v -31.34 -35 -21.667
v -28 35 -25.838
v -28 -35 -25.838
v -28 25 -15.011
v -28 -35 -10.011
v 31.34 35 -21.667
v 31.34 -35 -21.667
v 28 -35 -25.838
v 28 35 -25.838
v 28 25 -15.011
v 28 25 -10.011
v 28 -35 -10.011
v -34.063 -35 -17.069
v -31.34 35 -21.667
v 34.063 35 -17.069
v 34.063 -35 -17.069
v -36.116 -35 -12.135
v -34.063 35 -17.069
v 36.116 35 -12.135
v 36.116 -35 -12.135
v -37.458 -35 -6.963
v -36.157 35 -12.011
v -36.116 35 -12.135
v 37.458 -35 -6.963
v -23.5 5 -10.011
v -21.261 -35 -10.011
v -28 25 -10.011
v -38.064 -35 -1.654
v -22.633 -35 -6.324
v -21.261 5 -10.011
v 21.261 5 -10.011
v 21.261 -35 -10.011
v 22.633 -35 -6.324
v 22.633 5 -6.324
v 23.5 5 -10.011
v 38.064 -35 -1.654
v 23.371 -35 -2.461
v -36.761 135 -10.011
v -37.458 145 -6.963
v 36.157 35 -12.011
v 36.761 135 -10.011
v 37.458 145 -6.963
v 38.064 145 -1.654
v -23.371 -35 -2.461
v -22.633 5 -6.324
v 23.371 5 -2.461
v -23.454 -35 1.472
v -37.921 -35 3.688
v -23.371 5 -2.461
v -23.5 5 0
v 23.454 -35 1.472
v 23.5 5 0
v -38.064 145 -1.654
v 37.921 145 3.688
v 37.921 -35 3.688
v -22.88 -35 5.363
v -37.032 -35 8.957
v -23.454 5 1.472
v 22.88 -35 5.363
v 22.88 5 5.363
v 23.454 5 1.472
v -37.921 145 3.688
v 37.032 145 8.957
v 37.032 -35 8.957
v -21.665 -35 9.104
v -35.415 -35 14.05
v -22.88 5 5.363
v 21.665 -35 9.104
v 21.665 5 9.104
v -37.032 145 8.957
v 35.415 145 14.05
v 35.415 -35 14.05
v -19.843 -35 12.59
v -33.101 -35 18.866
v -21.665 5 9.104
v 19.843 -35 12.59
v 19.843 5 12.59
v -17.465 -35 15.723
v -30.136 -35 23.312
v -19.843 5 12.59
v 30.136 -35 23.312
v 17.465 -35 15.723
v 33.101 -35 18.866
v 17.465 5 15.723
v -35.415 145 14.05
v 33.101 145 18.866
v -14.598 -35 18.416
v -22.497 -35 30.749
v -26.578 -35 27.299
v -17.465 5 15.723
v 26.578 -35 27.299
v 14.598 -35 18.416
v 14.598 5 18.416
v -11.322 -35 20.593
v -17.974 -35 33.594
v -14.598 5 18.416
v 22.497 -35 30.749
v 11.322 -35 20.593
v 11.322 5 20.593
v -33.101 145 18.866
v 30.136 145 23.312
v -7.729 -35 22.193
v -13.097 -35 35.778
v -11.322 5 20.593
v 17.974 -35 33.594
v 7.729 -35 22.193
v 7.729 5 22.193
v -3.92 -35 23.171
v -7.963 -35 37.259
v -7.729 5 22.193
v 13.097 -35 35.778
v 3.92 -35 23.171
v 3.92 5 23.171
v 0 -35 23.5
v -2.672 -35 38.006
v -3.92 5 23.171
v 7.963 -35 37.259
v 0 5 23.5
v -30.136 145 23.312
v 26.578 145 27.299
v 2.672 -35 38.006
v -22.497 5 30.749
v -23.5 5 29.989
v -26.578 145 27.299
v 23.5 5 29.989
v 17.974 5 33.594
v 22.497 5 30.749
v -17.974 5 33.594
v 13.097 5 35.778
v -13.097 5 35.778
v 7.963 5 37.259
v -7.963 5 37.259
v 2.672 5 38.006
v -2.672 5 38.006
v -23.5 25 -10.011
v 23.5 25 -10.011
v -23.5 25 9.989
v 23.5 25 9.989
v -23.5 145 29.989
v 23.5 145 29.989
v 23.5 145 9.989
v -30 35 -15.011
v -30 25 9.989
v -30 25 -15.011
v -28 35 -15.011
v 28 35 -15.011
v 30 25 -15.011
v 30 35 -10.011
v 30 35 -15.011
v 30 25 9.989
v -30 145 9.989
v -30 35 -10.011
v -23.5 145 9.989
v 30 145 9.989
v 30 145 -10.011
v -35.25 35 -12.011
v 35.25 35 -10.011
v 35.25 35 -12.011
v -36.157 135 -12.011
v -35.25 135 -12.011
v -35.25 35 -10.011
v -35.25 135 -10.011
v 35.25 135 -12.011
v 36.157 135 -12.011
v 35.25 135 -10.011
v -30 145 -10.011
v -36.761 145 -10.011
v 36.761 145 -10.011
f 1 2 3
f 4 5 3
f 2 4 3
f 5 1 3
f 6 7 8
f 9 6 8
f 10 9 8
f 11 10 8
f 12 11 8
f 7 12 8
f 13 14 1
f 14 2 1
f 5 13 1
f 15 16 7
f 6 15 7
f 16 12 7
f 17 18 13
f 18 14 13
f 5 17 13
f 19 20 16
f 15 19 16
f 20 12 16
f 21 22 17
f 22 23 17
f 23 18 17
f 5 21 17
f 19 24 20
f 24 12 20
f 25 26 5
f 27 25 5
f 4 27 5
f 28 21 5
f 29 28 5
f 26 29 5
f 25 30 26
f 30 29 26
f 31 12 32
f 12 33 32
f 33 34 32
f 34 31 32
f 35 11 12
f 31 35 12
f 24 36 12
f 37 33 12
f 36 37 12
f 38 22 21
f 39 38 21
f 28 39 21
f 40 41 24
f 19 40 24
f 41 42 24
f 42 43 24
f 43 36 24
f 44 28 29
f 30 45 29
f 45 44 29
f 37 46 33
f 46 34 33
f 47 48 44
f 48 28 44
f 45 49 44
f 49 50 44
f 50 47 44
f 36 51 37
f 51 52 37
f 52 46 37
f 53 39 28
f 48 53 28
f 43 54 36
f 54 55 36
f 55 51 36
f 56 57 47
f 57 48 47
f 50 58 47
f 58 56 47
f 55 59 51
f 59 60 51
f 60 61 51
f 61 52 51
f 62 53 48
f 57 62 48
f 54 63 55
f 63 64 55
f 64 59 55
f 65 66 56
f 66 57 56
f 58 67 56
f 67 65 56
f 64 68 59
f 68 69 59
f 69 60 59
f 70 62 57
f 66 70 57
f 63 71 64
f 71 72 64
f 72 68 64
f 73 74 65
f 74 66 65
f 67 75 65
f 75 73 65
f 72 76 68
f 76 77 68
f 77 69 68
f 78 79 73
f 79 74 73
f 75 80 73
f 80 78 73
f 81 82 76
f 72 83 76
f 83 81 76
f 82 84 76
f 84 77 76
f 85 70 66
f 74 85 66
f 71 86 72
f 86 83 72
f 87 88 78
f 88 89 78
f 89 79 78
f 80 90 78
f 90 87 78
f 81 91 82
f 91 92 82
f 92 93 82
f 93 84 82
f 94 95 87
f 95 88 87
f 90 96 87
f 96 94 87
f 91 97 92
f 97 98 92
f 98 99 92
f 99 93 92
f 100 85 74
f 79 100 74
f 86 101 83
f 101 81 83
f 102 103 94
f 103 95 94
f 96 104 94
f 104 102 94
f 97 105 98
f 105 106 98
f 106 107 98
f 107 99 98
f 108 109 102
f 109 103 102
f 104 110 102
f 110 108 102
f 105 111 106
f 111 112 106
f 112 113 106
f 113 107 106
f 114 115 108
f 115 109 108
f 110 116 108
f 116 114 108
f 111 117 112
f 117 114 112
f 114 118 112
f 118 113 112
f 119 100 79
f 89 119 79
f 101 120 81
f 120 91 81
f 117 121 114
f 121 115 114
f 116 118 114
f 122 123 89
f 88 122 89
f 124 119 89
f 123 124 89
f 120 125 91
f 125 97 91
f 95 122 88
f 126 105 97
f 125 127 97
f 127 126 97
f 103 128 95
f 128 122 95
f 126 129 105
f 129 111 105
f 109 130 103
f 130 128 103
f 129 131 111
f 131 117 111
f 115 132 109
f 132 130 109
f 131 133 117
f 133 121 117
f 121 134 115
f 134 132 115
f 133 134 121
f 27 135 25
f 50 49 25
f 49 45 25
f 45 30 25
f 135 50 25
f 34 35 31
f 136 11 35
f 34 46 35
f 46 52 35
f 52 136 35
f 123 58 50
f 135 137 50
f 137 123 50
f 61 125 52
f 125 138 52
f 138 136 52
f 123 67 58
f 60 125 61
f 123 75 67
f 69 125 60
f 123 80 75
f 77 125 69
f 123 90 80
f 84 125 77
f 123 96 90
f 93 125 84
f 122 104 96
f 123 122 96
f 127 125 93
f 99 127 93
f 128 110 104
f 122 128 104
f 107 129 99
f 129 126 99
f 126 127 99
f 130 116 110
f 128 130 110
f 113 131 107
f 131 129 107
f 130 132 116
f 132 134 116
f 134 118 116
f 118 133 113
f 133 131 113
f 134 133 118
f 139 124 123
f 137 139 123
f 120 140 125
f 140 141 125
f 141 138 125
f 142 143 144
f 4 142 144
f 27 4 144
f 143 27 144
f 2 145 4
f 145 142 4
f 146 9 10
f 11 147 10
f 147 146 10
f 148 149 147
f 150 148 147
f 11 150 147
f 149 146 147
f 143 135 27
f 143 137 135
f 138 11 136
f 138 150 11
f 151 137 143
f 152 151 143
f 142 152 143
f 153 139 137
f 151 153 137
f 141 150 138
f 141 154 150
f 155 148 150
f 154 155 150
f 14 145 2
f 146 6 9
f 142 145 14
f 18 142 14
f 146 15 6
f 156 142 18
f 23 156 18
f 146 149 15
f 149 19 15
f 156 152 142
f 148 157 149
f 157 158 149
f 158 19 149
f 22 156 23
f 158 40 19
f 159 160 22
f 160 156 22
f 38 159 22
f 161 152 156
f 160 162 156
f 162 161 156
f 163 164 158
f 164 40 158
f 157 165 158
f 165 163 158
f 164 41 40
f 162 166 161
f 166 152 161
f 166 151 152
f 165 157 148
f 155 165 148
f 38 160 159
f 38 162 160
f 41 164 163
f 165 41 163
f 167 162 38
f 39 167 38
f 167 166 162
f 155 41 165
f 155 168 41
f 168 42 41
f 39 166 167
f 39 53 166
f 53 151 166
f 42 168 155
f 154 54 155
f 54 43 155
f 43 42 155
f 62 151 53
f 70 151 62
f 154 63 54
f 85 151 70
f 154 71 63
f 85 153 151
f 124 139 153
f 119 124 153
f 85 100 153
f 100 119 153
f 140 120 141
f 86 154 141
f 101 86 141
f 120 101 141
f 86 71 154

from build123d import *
from build123d.topology import SkipClean

# Parameters (mm, degrees)
SKETCH1_R            = 38.1
BOSS_EXTRUDE5_DEPTH  = 5
BOSS_EXTRUDE6_DEPTH  = 10
BOSS_EXTRUDE7_DEPTH  = 130
SKETCH6_W            = 60
SKETCH6_H            = 10
CUT_EXTRUDE1_DEPTH   = 20
SKETCH7_W            = 1.51134539
SKETCH7_H            = 120
BOSS_EXTRUDE8_DEPTH  = 2
SKETCH8_OUTSIDE_W    = 114.332
SKETCH8_OUTSIDE_H    = 114.332
SKETCH8_OUTSIDE_R    = 38.1
CUT_EXTRUDE2_DEPTH   = 155.687491414
SKETCH10_W           = 70.5
SKETCH10_H           = 2
BOSS_EXTRUDE9_DEPTH  = 20
SKETCH11_W           = 56
SKETCH11_H           = 30
CUT_EXTRUDE3_DEPTH   = 123.487632029
BOSS_EXTRUDE10_START = 35
BOSS_EXTRUDE10_DEPTH = 35
SKETCH13_R           = 23.5
CUT_EXTRUDE4_DEPTH   = 151.010732949
BOSS_EXTRUDE11_DEPTH = 20
SKETCH16_W           = 60
SKETCH16_H           = 25
CUT_EXTRUDE5_DEPTH   = 110


with BuildPart() as part:
    # Sketch1 → Boss-Extrude5 (new body)
    with BuildSketch(Plane(origin=(0, 0, 0), x_dir=(1, 0, 0), z_dir=(0, 1, 0))):
        with Locations(Location((0, 0, 0), (0, 0, 270))):
            Circle(SKETCH1_R)
    extrude(amount=BOSS_EXTRUDE5_DEPTH)

    # Sketch4 → Boss-Extrude6 (add)
    with BuildSketch(Plane(origin=(0, 5, 0), x_dir=(1, 0, 0), z_dir=(0, 1, 0))):
        with BuildLine():
            ThreePointArc((38.1, 0), (-16.677229986, 34.256094348), (-23.5, -29.989331436))
            Line((-23.5, -29.989331436), (-23.5, 10.010668564))
            Line((-23.5, 10.010668564), (23.5, 10.010668564))
            Line((23.5, 10.010668564), (23.5, -29.989331436))
            ThreePointArc((23.5, -29.989331436), (34.256094348, -16.677229986), (38.1, 0))
        make_face()
    extrude(amount=BOSS_EXTRUDE6_DEPTH)

    # Sketch5 → Boss-Extrude7 (add)
    with SkipClean():  # the faces are left unmerged after this step: merging them gives an invalid solid
        with BuildSketch(Plane(origin=(0, 15, 0), x_dir=(1, 0, 0), z_dir=(0, 1, 0))):
            with BuildLine():
                Line((-23.5, 10.010668564), (-36.76134539, 10.010668564))
                ThreePointArc((-36.76134539, 10.010668564), (-36.164311649, -11.98968569), (-23.5, -29.989331436))
                Line((-23.5, -29.989331436), (-23.5, 10.010668564))
            make_face()
            with BuildLine():
                Line((23.5, 10.010668564), (36.76134539, 10.010668564))
                ThreePointArc((36.76134539, 10.010668564), (36.164311649, -11.98968569), (23.5, -29.989331436))
                Line((23.5, -29.989331436), (23.5, 10.010668564))
            make_face()
        extrude(amount=BOSS_EXTRUDE7_DEPTH)

    # Sketch6 → Cut-Extrude1 (cut)
    with SkipClean():  # the faces are left unmerged after this step: merging them gives an invalid solid
        with BuildSketch(Plane(origin=(0, 0, -10.010668564), x_dir=(-1, 0, 0), z_dir=(0, 0, -1))):
            with Locations((0, 140)):
                Rectangle(SKETCH6_W, SKETCH6_H)
        extrude(amount=-CUT_EXTRUDE1_DEPTH, mode=Mode.SUBTRACT)

    # Sketch7 → Boss-Extrude8 (add)
    with SkipClean():  # the faces are left unmerged after this step: merging them gives an invalid solid
        with BuildSketch(Plane(origin=(0, 0, -10.010668564), x_dir=(-1, 0, 0), z_dir=(0, 0, -1))):
            with Locations((36.005672695, 75)):
                Rectangle(SKETCH7_W, SKETCH7_H)
            with Locations((-36.005672695, 75)):
                Rectangle(SKETCH7_W, SKETCH7_H)
        extrude(amount=BOSS_EXTRUDE8_DEPTH)

    # Sketch8 outside → Cut-Extrude2 (cut, through all)
    with SkipClean():  # the faces are left unmerged after this step: merging them gives an invalid solid
        with BuildSketch(Plane.XZ):
            Rectangle(SKETCH8_OUTSIDE_W, SKETCH8_OUTSIDE_H)
            with Locations(Location((0, 0, 0), (0, 0, 341.624658097))):
                Circle(SKETCH8_OUTSIDE_R, mode=Mode.SUBTRACT)
        extrude(amount=-CUT_EXTRUDE2_DEPTH, mode=Mode.SUBTRACT)
    add(part.part.scale(1), mode=Mode.REPLACE)  # the faces are merged on a copy

    # Sketch10 → Boss-Extrude9 (add)
    with SkipClean():  # the faces are left unmerged after this step: merging them gives an invalid solid
        with BuildSketch(Plane(origin=(0, 15, 0), x_dir=(1, 0, 0), z_dir=(0, 1, 0))):
            with Locations((0, 11.010668564)):
                Rectangle(SKETCH10_W, SKETCH10_H)
        extrude(amount=BOSS_EXTRUDE9_DEPTH)

    # Sketch11 → Cut-Extrude3 (cut, through all)
    with SkipClean():  # the faces are left unmerged after this step: merging them gives an invalid solid
        with BuildSketch(Plane(origin=(0, 35, 0), x_dir=(1, 0, 0), z_dir=(0, 1, 0))):
            with Locations((0, 25.010668564)):
                Rectangle(SKETCH11_W, SKETCH11_H)
        extrude(amount=-CUT_EXTRUDE3_DEPTH, mode=Mode.SUBTRACT)

    # Sketch12 → Boss-Extrude10 (add)
    with SkipClean():  # the faces are left unmerged after this step: merging them gives an invalid solid
        with BuildSketch(Plane.XZ.offset(BOSS_EXTRUDE10_START)):
            with BuildLine():
                Line((-28, -25.838150089), (-28, -10.010668564))
                Line((-28, -10.010668564), (28, -10.010668564))
                Line((28, -10.010668564), (28, -25.838150089))
                ThreePointArc((28, -25.838150089), (0, 38.1), (-28, -25.838150089))
            make_face()
        extrude(amount=-BOSS_EXTRUDE10_DEPTH)

    # Sketch13 → Cut-Extrude4 (cut, through all)
    with SkipClean():  # the faces are left unmerged after this step: merging them gives an invalid solid
        with BuildSketch(Plane(origin=(0, 5, 0), x_dir=(1, 0, 0), z_dir=(0, 1, 0))):
            Circle(SKETCH13_R)
        extrude(amount=-CUT_EXTRUDE4_DEPTH, mode=Mode.SUBTRACT)

    # Sketch14 → Boss-Extrude11 (add)
    with SkipClean():  # the faces are left unmerged after this step: merging them gives an invalid solid
        with BuildSketch(Plane(origin=(0, 15, 0), x_dir=(1, 0, 0), z_dir=(0, 1, 0))):
            with BuildLine():
                Line((28, 25.838150089), (28, 12.010668564))
                Line((28, 12.010668564), (36.157348363, 12.010668564))
                ThreePointArc((36.157348363, 12.010668564), (32.815257862, 19.35894758), (28, 25.838150089))
            make_face()
            with BuildLine():
                Line((-28, 12.010668564), (-28, 25.838150089))
                ThreePointArc((-28, 25.838150089), (-32.815257862, 19.35894758), (-36.157348363, 12.010668564))
                Line((-36.157348363, 12.010668564), (-28, 12.010668564))
            make_face()
        extrude(amount=BOSS_EXTRUDE11_DEPTH)

    # Sketch16 → Cut-Extrude5 (cut)
    with SkipClean():  # the faces are left unmerged after this step: merging them gives an invalid solid
        with BuildSketch(Plane(origin=(0, 135, 0), x_dir=(1, 0, 0), z_dir=(0, 1, 0))):
            with Locations((0, 2.510668564)):
                Rectangle(SKETCH16_W, SKETCH16_H)
        extrude(amount=-CUT_EXTRUDE5_DEPTH, mode=Mode.SUBTRACT)


solid = part.part
